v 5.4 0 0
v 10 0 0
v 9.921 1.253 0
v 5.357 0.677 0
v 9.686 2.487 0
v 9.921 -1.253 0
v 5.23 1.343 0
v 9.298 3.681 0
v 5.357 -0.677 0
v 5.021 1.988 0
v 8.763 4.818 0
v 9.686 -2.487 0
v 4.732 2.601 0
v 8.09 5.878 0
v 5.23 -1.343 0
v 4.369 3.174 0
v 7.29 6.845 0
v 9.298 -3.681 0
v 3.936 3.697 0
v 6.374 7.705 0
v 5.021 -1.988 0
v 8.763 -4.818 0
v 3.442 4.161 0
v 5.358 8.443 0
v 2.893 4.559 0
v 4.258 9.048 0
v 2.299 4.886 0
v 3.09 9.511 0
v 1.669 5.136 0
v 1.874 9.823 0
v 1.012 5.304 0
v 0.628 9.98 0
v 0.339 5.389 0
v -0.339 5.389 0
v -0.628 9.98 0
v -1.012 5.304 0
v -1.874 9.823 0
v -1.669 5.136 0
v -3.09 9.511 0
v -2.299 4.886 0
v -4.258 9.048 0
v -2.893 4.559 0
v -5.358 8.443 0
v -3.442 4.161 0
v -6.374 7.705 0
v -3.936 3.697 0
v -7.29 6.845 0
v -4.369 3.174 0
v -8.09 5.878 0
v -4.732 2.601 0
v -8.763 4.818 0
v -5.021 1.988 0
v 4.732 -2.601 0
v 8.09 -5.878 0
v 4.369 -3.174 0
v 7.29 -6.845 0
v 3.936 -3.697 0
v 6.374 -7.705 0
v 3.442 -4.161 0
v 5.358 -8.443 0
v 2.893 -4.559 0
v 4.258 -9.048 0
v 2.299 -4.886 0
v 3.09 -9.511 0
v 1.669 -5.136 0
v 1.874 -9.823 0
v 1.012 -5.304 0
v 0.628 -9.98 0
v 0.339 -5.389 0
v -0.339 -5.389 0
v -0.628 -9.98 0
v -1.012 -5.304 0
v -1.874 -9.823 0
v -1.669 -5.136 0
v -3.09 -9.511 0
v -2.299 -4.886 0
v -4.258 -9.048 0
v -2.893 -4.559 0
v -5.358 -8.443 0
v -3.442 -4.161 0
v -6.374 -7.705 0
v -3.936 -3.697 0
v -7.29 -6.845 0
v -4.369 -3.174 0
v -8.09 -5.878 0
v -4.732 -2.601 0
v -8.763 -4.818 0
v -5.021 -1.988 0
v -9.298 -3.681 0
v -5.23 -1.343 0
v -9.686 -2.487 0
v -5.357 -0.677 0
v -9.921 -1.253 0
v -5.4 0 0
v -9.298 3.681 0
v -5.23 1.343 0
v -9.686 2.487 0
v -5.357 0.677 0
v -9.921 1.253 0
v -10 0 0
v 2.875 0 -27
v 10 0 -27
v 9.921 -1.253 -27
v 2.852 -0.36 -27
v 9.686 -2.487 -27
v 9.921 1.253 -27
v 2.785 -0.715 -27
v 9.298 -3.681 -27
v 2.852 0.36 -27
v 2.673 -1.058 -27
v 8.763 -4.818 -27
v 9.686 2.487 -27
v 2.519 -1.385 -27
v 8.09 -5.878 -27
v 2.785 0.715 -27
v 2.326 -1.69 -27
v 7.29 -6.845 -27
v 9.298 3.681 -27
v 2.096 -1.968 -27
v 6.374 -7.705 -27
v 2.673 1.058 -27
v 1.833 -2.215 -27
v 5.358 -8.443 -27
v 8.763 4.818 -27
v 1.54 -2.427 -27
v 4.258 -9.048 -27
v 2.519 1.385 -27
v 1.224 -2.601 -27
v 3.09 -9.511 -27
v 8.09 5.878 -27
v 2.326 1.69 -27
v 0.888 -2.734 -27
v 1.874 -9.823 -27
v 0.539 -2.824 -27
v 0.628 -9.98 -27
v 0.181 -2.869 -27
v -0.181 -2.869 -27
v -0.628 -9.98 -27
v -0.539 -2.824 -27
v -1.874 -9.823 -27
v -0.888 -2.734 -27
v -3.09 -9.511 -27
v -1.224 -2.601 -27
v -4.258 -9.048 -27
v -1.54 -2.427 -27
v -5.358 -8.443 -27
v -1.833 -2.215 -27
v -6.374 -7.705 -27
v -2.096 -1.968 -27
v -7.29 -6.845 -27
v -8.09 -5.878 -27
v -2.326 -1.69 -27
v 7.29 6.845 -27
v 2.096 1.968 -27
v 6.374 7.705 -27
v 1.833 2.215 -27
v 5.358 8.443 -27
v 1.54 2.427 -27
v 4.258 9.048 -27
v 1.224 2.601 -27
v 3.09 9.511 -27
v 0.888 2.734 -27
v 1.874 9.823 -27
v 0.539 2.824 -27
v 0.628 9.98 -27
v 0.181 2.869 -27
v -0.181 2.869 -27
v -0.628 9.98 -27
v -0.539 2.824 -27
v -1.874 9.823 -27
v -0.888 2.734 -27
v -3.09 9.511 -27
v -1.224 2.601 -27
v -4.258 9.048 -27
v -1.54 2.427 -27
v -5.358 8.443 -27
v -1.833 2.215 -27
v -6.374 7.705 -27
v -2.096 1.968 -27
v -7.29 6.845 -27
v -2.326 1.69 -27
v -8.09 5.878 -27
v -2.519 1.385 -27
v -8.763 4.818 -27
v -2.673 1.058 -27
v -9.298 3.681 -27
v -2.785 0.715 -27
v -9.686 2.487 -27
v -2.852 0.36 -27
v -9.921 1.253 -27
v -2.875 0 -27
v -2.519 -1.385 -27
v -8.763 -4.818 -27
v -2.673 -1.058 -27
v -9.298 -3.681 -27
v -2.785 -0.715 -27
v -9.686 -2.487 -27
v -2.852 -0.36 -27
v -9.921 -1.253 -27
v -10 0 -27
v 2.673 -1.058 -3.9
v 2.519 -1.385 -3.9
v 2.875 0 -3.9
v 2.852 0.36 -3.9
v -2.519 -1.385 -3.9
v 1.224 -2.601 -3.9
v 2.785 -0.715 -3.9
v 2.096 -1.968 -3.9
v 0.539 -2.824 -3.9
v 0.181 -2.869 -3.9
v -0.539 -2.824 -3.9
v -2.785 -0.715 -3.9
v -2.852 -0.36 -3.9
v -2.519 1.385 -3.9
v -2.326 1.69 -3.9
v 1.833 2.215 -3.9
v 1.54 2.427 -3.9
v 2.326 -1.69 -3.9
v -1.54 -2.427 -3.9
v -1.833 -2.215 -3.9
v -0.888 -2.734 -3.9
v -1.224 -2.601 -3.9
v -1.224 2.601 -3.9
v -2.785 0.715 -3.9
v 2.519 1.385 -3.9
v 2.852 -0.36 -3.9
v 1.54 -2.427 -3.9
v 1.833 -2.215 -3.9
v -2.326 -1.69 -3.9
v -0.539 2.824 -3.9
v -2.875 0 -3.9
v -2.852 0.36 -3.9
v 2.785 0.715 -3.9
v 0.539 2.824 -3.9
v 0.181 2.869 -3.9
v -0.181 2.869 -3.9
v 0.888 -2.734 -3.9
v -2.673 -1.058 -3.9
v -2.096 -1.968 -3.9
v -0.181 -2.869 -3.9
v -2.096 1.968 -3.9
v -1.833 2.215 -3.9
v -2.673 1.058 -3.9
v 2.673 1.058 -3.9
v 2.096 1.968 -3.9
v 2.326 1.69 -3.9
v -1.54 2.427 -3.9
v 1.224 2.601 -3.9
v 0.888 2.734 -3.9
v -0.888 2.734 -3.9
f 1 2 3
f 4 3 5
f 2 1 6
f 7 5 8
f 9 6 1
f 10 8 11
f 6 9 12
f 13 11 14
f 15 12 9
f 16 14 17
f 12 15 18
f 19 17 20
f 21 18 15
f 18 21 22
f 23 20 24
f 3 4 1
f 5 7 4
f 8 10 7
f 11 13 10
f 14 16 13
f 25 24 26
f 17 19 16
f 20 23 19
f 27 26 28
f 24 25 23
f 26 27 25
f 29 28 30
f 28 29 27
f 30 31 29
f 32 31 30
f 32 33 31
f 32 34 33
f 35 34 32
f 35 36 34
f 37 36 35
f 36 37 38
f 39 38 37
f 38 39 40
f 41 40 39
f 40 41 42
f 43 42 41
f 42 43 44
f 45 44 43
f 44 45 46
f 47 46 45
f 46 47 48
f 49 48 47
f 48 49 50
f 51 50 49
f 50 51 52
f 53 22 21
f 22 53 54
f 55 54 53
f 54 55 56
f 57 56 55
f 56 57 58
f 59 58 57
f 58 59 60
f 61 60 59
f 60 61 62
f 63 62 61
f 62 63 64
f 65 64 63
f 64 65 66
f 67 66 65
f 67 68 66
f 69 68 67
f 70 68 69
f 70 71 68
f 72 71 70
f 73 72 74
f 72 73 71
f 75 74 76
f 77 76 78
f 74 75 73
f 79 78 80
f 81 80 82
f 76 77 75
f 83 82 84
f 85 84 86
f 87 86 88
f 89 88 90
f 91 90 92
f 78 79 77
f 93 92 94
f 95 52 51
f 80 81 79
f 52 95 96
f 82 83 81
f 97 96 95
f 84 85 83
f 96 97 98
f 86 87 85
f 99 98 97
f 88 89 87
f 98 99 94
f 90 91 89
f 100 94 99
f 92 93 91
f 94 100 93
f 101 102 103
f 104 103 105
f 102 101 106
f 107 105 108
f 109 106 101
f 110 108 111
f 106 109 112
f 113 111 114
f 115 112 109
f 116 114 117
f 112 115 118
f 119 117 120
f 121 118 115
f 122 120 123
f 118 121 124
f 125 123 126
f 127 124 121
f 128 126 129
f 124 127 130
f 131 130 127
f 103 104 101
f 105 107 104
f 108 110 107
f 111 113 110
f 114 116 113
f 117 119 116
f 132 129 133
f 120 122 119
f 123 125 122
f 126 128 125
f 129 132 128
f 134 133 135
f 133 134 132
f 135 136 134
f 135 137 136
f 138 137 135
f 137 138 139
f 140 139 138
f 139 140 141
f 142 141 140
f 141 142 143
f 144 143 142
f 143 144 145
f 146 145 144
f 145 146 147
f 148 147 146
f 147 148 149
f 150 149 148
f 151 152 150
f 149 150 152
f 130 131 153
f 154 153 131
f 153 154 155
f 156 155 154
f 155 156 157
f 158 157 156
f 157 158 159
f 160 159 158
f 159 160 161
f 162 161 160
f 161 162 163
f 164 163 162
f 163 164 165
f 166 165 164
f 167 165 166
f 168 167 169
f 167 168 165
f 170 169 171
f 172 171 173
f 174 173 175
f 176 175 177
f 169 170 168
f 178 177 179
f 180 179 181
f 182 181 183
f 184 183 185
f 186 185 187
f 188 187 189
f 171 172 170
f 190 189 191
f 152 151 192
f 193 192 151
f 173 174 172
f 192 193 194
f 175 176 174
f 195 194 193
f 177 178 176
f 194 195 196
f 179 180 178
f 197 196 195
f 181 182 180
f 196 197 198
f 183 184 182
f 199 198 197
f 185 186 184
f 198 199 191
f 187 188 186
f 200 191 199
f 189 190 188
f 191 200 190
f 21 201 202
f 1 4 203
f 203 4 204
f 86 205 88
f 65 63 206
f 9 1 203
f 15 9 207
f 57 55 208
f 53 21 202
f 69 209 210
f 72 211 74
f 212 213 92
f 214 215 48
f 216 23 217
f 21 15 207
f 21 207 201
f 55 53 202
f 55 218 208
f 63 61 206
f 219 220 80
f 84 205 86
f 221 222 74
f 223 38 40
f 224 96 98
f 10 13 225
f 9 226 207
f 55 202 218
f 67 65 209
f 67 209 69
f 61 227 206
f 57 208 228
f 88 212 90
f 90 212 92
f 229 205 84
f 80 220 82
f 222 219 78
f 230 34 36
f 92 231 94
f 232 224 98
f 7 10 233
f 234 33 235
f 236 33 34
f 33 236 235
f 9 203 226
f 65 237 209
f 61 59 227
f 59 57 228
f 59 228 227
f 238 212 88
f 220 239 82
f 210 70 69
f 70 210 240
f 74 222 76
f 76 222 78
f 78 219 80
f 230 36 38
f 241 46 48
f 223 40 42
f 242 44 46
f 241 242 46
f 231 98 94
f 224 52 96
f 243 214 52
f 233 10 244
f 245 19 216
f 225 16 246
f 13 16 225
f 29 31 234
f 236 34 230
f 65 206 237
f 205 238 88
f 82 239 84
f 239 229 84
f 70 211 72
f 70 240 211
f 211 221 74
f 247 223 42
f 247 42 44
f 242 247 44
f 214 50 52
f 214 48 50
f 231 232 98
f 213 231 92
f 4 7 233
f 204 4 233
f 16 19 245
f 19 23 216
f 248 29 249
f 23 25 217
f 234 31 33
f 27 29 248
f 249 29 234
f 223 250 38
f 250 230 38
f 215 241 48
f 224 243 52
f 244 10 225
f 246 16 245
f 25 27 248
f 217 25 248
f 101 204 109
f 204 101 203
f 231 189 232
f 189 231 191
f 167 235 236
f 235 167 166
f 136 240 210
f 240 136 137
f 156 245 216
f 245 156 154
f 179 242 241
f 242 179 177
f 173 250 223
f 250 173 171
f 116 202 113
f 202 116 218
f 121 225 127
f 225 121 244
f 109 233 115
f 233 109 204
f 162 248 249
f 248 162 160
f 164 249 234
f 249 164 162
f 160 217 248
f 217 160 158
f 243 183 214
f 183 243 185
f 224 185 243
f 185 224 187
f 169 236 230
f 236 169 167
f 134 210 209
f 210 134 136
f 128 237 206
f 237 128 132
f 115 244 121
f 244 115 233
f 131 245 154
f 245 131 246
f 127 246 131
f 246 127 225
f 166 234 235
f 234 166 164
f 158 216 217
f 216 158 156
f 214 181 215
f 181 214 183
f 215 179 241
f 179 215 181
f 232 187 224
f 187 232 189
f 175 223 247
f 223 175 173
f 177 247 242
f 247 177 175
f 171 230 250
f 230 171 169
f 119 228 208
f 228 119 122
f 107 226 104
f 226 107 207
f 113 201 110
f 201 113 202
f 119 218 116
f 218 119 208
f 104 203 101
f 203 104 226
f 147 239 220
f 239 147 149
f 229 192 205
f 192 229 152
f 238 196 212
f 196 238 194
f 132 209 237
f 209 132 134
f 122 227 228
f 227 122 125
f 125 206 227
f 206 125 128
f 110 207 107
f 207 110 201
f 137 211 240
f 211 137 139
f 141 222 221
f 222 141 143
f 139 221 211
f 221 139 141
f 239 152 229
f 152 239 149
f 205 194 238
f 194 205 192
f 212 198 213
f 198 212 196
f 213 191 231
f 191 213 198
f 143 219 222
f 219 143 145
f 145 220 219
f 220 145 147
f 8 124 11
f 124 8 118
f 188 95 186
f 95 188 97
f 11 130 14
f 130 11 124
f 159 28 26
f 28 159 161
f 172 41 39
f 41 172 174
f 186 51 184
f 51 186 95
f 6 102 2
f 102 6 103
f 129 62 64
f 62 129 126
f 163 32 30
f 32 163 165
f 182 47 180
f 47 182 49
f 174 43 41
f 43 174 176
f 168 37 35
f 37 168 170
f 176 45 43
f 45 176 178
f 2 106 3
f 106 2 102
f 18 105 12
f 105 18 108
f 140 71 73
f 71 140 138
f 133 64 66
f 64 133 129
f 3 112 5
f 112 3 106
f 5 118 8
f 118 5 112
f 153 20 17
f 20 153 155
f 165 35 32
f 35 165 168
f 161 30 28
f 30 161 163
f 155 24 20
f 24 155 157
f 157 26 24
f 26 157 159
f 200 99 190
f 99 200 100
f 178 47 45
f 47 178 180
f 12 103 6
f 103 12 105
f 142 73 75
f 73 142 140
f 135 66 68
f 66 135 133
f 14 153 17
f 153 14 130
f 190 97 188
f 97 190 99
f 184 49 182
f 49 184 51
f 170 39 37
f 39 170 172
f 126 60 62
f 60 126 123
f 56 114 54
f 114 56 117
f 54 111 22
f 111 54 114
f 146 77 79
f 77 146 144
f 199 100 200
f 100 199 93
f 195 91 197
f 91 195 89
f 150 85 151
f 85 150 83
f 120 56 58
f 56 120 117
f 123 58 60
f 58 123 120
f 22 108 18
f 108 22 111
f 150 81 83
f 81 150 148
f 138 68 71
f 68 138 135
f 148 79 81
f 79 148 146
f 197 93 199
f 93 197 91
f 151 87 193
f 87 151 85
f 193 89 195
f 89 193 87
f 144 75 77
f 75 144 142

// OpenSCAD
$fn = 50;


difference() {
	union() {
		translate(v = [0, 0, -27.0000000000]) {
			cylinder(h = 27, r = 10.0000000000);
		}
		cylinder(h = 0, r = 16.0000000000);
	}
	union() {
		translate(v = [0, 0, 0]) {
			rotate(a = [0, 0, 0]) {
				difference() {
					union() {
						#translate(v = [0, 0, -27.0000000000]) {
							cylinder(h = 27, r = 2.6000000000);
						}
						#translate(v = [0, 0, -3.9000000000]) {
							cylinder(h = 3.9000000000, r1 = 2.8750000000, r2 = 5.4000000000);
						}
						#translate(v = [0, 0, -27.0000000000]) {
							cylinder(h = 27, r = 2.8750000000);
						}
						#translate(v = [0, 0, -27.0000000000]) {
							cylinder(h = 27, r = 2.6000000000);
						}
					}
					union();
				}
			}
		}
	}
}
